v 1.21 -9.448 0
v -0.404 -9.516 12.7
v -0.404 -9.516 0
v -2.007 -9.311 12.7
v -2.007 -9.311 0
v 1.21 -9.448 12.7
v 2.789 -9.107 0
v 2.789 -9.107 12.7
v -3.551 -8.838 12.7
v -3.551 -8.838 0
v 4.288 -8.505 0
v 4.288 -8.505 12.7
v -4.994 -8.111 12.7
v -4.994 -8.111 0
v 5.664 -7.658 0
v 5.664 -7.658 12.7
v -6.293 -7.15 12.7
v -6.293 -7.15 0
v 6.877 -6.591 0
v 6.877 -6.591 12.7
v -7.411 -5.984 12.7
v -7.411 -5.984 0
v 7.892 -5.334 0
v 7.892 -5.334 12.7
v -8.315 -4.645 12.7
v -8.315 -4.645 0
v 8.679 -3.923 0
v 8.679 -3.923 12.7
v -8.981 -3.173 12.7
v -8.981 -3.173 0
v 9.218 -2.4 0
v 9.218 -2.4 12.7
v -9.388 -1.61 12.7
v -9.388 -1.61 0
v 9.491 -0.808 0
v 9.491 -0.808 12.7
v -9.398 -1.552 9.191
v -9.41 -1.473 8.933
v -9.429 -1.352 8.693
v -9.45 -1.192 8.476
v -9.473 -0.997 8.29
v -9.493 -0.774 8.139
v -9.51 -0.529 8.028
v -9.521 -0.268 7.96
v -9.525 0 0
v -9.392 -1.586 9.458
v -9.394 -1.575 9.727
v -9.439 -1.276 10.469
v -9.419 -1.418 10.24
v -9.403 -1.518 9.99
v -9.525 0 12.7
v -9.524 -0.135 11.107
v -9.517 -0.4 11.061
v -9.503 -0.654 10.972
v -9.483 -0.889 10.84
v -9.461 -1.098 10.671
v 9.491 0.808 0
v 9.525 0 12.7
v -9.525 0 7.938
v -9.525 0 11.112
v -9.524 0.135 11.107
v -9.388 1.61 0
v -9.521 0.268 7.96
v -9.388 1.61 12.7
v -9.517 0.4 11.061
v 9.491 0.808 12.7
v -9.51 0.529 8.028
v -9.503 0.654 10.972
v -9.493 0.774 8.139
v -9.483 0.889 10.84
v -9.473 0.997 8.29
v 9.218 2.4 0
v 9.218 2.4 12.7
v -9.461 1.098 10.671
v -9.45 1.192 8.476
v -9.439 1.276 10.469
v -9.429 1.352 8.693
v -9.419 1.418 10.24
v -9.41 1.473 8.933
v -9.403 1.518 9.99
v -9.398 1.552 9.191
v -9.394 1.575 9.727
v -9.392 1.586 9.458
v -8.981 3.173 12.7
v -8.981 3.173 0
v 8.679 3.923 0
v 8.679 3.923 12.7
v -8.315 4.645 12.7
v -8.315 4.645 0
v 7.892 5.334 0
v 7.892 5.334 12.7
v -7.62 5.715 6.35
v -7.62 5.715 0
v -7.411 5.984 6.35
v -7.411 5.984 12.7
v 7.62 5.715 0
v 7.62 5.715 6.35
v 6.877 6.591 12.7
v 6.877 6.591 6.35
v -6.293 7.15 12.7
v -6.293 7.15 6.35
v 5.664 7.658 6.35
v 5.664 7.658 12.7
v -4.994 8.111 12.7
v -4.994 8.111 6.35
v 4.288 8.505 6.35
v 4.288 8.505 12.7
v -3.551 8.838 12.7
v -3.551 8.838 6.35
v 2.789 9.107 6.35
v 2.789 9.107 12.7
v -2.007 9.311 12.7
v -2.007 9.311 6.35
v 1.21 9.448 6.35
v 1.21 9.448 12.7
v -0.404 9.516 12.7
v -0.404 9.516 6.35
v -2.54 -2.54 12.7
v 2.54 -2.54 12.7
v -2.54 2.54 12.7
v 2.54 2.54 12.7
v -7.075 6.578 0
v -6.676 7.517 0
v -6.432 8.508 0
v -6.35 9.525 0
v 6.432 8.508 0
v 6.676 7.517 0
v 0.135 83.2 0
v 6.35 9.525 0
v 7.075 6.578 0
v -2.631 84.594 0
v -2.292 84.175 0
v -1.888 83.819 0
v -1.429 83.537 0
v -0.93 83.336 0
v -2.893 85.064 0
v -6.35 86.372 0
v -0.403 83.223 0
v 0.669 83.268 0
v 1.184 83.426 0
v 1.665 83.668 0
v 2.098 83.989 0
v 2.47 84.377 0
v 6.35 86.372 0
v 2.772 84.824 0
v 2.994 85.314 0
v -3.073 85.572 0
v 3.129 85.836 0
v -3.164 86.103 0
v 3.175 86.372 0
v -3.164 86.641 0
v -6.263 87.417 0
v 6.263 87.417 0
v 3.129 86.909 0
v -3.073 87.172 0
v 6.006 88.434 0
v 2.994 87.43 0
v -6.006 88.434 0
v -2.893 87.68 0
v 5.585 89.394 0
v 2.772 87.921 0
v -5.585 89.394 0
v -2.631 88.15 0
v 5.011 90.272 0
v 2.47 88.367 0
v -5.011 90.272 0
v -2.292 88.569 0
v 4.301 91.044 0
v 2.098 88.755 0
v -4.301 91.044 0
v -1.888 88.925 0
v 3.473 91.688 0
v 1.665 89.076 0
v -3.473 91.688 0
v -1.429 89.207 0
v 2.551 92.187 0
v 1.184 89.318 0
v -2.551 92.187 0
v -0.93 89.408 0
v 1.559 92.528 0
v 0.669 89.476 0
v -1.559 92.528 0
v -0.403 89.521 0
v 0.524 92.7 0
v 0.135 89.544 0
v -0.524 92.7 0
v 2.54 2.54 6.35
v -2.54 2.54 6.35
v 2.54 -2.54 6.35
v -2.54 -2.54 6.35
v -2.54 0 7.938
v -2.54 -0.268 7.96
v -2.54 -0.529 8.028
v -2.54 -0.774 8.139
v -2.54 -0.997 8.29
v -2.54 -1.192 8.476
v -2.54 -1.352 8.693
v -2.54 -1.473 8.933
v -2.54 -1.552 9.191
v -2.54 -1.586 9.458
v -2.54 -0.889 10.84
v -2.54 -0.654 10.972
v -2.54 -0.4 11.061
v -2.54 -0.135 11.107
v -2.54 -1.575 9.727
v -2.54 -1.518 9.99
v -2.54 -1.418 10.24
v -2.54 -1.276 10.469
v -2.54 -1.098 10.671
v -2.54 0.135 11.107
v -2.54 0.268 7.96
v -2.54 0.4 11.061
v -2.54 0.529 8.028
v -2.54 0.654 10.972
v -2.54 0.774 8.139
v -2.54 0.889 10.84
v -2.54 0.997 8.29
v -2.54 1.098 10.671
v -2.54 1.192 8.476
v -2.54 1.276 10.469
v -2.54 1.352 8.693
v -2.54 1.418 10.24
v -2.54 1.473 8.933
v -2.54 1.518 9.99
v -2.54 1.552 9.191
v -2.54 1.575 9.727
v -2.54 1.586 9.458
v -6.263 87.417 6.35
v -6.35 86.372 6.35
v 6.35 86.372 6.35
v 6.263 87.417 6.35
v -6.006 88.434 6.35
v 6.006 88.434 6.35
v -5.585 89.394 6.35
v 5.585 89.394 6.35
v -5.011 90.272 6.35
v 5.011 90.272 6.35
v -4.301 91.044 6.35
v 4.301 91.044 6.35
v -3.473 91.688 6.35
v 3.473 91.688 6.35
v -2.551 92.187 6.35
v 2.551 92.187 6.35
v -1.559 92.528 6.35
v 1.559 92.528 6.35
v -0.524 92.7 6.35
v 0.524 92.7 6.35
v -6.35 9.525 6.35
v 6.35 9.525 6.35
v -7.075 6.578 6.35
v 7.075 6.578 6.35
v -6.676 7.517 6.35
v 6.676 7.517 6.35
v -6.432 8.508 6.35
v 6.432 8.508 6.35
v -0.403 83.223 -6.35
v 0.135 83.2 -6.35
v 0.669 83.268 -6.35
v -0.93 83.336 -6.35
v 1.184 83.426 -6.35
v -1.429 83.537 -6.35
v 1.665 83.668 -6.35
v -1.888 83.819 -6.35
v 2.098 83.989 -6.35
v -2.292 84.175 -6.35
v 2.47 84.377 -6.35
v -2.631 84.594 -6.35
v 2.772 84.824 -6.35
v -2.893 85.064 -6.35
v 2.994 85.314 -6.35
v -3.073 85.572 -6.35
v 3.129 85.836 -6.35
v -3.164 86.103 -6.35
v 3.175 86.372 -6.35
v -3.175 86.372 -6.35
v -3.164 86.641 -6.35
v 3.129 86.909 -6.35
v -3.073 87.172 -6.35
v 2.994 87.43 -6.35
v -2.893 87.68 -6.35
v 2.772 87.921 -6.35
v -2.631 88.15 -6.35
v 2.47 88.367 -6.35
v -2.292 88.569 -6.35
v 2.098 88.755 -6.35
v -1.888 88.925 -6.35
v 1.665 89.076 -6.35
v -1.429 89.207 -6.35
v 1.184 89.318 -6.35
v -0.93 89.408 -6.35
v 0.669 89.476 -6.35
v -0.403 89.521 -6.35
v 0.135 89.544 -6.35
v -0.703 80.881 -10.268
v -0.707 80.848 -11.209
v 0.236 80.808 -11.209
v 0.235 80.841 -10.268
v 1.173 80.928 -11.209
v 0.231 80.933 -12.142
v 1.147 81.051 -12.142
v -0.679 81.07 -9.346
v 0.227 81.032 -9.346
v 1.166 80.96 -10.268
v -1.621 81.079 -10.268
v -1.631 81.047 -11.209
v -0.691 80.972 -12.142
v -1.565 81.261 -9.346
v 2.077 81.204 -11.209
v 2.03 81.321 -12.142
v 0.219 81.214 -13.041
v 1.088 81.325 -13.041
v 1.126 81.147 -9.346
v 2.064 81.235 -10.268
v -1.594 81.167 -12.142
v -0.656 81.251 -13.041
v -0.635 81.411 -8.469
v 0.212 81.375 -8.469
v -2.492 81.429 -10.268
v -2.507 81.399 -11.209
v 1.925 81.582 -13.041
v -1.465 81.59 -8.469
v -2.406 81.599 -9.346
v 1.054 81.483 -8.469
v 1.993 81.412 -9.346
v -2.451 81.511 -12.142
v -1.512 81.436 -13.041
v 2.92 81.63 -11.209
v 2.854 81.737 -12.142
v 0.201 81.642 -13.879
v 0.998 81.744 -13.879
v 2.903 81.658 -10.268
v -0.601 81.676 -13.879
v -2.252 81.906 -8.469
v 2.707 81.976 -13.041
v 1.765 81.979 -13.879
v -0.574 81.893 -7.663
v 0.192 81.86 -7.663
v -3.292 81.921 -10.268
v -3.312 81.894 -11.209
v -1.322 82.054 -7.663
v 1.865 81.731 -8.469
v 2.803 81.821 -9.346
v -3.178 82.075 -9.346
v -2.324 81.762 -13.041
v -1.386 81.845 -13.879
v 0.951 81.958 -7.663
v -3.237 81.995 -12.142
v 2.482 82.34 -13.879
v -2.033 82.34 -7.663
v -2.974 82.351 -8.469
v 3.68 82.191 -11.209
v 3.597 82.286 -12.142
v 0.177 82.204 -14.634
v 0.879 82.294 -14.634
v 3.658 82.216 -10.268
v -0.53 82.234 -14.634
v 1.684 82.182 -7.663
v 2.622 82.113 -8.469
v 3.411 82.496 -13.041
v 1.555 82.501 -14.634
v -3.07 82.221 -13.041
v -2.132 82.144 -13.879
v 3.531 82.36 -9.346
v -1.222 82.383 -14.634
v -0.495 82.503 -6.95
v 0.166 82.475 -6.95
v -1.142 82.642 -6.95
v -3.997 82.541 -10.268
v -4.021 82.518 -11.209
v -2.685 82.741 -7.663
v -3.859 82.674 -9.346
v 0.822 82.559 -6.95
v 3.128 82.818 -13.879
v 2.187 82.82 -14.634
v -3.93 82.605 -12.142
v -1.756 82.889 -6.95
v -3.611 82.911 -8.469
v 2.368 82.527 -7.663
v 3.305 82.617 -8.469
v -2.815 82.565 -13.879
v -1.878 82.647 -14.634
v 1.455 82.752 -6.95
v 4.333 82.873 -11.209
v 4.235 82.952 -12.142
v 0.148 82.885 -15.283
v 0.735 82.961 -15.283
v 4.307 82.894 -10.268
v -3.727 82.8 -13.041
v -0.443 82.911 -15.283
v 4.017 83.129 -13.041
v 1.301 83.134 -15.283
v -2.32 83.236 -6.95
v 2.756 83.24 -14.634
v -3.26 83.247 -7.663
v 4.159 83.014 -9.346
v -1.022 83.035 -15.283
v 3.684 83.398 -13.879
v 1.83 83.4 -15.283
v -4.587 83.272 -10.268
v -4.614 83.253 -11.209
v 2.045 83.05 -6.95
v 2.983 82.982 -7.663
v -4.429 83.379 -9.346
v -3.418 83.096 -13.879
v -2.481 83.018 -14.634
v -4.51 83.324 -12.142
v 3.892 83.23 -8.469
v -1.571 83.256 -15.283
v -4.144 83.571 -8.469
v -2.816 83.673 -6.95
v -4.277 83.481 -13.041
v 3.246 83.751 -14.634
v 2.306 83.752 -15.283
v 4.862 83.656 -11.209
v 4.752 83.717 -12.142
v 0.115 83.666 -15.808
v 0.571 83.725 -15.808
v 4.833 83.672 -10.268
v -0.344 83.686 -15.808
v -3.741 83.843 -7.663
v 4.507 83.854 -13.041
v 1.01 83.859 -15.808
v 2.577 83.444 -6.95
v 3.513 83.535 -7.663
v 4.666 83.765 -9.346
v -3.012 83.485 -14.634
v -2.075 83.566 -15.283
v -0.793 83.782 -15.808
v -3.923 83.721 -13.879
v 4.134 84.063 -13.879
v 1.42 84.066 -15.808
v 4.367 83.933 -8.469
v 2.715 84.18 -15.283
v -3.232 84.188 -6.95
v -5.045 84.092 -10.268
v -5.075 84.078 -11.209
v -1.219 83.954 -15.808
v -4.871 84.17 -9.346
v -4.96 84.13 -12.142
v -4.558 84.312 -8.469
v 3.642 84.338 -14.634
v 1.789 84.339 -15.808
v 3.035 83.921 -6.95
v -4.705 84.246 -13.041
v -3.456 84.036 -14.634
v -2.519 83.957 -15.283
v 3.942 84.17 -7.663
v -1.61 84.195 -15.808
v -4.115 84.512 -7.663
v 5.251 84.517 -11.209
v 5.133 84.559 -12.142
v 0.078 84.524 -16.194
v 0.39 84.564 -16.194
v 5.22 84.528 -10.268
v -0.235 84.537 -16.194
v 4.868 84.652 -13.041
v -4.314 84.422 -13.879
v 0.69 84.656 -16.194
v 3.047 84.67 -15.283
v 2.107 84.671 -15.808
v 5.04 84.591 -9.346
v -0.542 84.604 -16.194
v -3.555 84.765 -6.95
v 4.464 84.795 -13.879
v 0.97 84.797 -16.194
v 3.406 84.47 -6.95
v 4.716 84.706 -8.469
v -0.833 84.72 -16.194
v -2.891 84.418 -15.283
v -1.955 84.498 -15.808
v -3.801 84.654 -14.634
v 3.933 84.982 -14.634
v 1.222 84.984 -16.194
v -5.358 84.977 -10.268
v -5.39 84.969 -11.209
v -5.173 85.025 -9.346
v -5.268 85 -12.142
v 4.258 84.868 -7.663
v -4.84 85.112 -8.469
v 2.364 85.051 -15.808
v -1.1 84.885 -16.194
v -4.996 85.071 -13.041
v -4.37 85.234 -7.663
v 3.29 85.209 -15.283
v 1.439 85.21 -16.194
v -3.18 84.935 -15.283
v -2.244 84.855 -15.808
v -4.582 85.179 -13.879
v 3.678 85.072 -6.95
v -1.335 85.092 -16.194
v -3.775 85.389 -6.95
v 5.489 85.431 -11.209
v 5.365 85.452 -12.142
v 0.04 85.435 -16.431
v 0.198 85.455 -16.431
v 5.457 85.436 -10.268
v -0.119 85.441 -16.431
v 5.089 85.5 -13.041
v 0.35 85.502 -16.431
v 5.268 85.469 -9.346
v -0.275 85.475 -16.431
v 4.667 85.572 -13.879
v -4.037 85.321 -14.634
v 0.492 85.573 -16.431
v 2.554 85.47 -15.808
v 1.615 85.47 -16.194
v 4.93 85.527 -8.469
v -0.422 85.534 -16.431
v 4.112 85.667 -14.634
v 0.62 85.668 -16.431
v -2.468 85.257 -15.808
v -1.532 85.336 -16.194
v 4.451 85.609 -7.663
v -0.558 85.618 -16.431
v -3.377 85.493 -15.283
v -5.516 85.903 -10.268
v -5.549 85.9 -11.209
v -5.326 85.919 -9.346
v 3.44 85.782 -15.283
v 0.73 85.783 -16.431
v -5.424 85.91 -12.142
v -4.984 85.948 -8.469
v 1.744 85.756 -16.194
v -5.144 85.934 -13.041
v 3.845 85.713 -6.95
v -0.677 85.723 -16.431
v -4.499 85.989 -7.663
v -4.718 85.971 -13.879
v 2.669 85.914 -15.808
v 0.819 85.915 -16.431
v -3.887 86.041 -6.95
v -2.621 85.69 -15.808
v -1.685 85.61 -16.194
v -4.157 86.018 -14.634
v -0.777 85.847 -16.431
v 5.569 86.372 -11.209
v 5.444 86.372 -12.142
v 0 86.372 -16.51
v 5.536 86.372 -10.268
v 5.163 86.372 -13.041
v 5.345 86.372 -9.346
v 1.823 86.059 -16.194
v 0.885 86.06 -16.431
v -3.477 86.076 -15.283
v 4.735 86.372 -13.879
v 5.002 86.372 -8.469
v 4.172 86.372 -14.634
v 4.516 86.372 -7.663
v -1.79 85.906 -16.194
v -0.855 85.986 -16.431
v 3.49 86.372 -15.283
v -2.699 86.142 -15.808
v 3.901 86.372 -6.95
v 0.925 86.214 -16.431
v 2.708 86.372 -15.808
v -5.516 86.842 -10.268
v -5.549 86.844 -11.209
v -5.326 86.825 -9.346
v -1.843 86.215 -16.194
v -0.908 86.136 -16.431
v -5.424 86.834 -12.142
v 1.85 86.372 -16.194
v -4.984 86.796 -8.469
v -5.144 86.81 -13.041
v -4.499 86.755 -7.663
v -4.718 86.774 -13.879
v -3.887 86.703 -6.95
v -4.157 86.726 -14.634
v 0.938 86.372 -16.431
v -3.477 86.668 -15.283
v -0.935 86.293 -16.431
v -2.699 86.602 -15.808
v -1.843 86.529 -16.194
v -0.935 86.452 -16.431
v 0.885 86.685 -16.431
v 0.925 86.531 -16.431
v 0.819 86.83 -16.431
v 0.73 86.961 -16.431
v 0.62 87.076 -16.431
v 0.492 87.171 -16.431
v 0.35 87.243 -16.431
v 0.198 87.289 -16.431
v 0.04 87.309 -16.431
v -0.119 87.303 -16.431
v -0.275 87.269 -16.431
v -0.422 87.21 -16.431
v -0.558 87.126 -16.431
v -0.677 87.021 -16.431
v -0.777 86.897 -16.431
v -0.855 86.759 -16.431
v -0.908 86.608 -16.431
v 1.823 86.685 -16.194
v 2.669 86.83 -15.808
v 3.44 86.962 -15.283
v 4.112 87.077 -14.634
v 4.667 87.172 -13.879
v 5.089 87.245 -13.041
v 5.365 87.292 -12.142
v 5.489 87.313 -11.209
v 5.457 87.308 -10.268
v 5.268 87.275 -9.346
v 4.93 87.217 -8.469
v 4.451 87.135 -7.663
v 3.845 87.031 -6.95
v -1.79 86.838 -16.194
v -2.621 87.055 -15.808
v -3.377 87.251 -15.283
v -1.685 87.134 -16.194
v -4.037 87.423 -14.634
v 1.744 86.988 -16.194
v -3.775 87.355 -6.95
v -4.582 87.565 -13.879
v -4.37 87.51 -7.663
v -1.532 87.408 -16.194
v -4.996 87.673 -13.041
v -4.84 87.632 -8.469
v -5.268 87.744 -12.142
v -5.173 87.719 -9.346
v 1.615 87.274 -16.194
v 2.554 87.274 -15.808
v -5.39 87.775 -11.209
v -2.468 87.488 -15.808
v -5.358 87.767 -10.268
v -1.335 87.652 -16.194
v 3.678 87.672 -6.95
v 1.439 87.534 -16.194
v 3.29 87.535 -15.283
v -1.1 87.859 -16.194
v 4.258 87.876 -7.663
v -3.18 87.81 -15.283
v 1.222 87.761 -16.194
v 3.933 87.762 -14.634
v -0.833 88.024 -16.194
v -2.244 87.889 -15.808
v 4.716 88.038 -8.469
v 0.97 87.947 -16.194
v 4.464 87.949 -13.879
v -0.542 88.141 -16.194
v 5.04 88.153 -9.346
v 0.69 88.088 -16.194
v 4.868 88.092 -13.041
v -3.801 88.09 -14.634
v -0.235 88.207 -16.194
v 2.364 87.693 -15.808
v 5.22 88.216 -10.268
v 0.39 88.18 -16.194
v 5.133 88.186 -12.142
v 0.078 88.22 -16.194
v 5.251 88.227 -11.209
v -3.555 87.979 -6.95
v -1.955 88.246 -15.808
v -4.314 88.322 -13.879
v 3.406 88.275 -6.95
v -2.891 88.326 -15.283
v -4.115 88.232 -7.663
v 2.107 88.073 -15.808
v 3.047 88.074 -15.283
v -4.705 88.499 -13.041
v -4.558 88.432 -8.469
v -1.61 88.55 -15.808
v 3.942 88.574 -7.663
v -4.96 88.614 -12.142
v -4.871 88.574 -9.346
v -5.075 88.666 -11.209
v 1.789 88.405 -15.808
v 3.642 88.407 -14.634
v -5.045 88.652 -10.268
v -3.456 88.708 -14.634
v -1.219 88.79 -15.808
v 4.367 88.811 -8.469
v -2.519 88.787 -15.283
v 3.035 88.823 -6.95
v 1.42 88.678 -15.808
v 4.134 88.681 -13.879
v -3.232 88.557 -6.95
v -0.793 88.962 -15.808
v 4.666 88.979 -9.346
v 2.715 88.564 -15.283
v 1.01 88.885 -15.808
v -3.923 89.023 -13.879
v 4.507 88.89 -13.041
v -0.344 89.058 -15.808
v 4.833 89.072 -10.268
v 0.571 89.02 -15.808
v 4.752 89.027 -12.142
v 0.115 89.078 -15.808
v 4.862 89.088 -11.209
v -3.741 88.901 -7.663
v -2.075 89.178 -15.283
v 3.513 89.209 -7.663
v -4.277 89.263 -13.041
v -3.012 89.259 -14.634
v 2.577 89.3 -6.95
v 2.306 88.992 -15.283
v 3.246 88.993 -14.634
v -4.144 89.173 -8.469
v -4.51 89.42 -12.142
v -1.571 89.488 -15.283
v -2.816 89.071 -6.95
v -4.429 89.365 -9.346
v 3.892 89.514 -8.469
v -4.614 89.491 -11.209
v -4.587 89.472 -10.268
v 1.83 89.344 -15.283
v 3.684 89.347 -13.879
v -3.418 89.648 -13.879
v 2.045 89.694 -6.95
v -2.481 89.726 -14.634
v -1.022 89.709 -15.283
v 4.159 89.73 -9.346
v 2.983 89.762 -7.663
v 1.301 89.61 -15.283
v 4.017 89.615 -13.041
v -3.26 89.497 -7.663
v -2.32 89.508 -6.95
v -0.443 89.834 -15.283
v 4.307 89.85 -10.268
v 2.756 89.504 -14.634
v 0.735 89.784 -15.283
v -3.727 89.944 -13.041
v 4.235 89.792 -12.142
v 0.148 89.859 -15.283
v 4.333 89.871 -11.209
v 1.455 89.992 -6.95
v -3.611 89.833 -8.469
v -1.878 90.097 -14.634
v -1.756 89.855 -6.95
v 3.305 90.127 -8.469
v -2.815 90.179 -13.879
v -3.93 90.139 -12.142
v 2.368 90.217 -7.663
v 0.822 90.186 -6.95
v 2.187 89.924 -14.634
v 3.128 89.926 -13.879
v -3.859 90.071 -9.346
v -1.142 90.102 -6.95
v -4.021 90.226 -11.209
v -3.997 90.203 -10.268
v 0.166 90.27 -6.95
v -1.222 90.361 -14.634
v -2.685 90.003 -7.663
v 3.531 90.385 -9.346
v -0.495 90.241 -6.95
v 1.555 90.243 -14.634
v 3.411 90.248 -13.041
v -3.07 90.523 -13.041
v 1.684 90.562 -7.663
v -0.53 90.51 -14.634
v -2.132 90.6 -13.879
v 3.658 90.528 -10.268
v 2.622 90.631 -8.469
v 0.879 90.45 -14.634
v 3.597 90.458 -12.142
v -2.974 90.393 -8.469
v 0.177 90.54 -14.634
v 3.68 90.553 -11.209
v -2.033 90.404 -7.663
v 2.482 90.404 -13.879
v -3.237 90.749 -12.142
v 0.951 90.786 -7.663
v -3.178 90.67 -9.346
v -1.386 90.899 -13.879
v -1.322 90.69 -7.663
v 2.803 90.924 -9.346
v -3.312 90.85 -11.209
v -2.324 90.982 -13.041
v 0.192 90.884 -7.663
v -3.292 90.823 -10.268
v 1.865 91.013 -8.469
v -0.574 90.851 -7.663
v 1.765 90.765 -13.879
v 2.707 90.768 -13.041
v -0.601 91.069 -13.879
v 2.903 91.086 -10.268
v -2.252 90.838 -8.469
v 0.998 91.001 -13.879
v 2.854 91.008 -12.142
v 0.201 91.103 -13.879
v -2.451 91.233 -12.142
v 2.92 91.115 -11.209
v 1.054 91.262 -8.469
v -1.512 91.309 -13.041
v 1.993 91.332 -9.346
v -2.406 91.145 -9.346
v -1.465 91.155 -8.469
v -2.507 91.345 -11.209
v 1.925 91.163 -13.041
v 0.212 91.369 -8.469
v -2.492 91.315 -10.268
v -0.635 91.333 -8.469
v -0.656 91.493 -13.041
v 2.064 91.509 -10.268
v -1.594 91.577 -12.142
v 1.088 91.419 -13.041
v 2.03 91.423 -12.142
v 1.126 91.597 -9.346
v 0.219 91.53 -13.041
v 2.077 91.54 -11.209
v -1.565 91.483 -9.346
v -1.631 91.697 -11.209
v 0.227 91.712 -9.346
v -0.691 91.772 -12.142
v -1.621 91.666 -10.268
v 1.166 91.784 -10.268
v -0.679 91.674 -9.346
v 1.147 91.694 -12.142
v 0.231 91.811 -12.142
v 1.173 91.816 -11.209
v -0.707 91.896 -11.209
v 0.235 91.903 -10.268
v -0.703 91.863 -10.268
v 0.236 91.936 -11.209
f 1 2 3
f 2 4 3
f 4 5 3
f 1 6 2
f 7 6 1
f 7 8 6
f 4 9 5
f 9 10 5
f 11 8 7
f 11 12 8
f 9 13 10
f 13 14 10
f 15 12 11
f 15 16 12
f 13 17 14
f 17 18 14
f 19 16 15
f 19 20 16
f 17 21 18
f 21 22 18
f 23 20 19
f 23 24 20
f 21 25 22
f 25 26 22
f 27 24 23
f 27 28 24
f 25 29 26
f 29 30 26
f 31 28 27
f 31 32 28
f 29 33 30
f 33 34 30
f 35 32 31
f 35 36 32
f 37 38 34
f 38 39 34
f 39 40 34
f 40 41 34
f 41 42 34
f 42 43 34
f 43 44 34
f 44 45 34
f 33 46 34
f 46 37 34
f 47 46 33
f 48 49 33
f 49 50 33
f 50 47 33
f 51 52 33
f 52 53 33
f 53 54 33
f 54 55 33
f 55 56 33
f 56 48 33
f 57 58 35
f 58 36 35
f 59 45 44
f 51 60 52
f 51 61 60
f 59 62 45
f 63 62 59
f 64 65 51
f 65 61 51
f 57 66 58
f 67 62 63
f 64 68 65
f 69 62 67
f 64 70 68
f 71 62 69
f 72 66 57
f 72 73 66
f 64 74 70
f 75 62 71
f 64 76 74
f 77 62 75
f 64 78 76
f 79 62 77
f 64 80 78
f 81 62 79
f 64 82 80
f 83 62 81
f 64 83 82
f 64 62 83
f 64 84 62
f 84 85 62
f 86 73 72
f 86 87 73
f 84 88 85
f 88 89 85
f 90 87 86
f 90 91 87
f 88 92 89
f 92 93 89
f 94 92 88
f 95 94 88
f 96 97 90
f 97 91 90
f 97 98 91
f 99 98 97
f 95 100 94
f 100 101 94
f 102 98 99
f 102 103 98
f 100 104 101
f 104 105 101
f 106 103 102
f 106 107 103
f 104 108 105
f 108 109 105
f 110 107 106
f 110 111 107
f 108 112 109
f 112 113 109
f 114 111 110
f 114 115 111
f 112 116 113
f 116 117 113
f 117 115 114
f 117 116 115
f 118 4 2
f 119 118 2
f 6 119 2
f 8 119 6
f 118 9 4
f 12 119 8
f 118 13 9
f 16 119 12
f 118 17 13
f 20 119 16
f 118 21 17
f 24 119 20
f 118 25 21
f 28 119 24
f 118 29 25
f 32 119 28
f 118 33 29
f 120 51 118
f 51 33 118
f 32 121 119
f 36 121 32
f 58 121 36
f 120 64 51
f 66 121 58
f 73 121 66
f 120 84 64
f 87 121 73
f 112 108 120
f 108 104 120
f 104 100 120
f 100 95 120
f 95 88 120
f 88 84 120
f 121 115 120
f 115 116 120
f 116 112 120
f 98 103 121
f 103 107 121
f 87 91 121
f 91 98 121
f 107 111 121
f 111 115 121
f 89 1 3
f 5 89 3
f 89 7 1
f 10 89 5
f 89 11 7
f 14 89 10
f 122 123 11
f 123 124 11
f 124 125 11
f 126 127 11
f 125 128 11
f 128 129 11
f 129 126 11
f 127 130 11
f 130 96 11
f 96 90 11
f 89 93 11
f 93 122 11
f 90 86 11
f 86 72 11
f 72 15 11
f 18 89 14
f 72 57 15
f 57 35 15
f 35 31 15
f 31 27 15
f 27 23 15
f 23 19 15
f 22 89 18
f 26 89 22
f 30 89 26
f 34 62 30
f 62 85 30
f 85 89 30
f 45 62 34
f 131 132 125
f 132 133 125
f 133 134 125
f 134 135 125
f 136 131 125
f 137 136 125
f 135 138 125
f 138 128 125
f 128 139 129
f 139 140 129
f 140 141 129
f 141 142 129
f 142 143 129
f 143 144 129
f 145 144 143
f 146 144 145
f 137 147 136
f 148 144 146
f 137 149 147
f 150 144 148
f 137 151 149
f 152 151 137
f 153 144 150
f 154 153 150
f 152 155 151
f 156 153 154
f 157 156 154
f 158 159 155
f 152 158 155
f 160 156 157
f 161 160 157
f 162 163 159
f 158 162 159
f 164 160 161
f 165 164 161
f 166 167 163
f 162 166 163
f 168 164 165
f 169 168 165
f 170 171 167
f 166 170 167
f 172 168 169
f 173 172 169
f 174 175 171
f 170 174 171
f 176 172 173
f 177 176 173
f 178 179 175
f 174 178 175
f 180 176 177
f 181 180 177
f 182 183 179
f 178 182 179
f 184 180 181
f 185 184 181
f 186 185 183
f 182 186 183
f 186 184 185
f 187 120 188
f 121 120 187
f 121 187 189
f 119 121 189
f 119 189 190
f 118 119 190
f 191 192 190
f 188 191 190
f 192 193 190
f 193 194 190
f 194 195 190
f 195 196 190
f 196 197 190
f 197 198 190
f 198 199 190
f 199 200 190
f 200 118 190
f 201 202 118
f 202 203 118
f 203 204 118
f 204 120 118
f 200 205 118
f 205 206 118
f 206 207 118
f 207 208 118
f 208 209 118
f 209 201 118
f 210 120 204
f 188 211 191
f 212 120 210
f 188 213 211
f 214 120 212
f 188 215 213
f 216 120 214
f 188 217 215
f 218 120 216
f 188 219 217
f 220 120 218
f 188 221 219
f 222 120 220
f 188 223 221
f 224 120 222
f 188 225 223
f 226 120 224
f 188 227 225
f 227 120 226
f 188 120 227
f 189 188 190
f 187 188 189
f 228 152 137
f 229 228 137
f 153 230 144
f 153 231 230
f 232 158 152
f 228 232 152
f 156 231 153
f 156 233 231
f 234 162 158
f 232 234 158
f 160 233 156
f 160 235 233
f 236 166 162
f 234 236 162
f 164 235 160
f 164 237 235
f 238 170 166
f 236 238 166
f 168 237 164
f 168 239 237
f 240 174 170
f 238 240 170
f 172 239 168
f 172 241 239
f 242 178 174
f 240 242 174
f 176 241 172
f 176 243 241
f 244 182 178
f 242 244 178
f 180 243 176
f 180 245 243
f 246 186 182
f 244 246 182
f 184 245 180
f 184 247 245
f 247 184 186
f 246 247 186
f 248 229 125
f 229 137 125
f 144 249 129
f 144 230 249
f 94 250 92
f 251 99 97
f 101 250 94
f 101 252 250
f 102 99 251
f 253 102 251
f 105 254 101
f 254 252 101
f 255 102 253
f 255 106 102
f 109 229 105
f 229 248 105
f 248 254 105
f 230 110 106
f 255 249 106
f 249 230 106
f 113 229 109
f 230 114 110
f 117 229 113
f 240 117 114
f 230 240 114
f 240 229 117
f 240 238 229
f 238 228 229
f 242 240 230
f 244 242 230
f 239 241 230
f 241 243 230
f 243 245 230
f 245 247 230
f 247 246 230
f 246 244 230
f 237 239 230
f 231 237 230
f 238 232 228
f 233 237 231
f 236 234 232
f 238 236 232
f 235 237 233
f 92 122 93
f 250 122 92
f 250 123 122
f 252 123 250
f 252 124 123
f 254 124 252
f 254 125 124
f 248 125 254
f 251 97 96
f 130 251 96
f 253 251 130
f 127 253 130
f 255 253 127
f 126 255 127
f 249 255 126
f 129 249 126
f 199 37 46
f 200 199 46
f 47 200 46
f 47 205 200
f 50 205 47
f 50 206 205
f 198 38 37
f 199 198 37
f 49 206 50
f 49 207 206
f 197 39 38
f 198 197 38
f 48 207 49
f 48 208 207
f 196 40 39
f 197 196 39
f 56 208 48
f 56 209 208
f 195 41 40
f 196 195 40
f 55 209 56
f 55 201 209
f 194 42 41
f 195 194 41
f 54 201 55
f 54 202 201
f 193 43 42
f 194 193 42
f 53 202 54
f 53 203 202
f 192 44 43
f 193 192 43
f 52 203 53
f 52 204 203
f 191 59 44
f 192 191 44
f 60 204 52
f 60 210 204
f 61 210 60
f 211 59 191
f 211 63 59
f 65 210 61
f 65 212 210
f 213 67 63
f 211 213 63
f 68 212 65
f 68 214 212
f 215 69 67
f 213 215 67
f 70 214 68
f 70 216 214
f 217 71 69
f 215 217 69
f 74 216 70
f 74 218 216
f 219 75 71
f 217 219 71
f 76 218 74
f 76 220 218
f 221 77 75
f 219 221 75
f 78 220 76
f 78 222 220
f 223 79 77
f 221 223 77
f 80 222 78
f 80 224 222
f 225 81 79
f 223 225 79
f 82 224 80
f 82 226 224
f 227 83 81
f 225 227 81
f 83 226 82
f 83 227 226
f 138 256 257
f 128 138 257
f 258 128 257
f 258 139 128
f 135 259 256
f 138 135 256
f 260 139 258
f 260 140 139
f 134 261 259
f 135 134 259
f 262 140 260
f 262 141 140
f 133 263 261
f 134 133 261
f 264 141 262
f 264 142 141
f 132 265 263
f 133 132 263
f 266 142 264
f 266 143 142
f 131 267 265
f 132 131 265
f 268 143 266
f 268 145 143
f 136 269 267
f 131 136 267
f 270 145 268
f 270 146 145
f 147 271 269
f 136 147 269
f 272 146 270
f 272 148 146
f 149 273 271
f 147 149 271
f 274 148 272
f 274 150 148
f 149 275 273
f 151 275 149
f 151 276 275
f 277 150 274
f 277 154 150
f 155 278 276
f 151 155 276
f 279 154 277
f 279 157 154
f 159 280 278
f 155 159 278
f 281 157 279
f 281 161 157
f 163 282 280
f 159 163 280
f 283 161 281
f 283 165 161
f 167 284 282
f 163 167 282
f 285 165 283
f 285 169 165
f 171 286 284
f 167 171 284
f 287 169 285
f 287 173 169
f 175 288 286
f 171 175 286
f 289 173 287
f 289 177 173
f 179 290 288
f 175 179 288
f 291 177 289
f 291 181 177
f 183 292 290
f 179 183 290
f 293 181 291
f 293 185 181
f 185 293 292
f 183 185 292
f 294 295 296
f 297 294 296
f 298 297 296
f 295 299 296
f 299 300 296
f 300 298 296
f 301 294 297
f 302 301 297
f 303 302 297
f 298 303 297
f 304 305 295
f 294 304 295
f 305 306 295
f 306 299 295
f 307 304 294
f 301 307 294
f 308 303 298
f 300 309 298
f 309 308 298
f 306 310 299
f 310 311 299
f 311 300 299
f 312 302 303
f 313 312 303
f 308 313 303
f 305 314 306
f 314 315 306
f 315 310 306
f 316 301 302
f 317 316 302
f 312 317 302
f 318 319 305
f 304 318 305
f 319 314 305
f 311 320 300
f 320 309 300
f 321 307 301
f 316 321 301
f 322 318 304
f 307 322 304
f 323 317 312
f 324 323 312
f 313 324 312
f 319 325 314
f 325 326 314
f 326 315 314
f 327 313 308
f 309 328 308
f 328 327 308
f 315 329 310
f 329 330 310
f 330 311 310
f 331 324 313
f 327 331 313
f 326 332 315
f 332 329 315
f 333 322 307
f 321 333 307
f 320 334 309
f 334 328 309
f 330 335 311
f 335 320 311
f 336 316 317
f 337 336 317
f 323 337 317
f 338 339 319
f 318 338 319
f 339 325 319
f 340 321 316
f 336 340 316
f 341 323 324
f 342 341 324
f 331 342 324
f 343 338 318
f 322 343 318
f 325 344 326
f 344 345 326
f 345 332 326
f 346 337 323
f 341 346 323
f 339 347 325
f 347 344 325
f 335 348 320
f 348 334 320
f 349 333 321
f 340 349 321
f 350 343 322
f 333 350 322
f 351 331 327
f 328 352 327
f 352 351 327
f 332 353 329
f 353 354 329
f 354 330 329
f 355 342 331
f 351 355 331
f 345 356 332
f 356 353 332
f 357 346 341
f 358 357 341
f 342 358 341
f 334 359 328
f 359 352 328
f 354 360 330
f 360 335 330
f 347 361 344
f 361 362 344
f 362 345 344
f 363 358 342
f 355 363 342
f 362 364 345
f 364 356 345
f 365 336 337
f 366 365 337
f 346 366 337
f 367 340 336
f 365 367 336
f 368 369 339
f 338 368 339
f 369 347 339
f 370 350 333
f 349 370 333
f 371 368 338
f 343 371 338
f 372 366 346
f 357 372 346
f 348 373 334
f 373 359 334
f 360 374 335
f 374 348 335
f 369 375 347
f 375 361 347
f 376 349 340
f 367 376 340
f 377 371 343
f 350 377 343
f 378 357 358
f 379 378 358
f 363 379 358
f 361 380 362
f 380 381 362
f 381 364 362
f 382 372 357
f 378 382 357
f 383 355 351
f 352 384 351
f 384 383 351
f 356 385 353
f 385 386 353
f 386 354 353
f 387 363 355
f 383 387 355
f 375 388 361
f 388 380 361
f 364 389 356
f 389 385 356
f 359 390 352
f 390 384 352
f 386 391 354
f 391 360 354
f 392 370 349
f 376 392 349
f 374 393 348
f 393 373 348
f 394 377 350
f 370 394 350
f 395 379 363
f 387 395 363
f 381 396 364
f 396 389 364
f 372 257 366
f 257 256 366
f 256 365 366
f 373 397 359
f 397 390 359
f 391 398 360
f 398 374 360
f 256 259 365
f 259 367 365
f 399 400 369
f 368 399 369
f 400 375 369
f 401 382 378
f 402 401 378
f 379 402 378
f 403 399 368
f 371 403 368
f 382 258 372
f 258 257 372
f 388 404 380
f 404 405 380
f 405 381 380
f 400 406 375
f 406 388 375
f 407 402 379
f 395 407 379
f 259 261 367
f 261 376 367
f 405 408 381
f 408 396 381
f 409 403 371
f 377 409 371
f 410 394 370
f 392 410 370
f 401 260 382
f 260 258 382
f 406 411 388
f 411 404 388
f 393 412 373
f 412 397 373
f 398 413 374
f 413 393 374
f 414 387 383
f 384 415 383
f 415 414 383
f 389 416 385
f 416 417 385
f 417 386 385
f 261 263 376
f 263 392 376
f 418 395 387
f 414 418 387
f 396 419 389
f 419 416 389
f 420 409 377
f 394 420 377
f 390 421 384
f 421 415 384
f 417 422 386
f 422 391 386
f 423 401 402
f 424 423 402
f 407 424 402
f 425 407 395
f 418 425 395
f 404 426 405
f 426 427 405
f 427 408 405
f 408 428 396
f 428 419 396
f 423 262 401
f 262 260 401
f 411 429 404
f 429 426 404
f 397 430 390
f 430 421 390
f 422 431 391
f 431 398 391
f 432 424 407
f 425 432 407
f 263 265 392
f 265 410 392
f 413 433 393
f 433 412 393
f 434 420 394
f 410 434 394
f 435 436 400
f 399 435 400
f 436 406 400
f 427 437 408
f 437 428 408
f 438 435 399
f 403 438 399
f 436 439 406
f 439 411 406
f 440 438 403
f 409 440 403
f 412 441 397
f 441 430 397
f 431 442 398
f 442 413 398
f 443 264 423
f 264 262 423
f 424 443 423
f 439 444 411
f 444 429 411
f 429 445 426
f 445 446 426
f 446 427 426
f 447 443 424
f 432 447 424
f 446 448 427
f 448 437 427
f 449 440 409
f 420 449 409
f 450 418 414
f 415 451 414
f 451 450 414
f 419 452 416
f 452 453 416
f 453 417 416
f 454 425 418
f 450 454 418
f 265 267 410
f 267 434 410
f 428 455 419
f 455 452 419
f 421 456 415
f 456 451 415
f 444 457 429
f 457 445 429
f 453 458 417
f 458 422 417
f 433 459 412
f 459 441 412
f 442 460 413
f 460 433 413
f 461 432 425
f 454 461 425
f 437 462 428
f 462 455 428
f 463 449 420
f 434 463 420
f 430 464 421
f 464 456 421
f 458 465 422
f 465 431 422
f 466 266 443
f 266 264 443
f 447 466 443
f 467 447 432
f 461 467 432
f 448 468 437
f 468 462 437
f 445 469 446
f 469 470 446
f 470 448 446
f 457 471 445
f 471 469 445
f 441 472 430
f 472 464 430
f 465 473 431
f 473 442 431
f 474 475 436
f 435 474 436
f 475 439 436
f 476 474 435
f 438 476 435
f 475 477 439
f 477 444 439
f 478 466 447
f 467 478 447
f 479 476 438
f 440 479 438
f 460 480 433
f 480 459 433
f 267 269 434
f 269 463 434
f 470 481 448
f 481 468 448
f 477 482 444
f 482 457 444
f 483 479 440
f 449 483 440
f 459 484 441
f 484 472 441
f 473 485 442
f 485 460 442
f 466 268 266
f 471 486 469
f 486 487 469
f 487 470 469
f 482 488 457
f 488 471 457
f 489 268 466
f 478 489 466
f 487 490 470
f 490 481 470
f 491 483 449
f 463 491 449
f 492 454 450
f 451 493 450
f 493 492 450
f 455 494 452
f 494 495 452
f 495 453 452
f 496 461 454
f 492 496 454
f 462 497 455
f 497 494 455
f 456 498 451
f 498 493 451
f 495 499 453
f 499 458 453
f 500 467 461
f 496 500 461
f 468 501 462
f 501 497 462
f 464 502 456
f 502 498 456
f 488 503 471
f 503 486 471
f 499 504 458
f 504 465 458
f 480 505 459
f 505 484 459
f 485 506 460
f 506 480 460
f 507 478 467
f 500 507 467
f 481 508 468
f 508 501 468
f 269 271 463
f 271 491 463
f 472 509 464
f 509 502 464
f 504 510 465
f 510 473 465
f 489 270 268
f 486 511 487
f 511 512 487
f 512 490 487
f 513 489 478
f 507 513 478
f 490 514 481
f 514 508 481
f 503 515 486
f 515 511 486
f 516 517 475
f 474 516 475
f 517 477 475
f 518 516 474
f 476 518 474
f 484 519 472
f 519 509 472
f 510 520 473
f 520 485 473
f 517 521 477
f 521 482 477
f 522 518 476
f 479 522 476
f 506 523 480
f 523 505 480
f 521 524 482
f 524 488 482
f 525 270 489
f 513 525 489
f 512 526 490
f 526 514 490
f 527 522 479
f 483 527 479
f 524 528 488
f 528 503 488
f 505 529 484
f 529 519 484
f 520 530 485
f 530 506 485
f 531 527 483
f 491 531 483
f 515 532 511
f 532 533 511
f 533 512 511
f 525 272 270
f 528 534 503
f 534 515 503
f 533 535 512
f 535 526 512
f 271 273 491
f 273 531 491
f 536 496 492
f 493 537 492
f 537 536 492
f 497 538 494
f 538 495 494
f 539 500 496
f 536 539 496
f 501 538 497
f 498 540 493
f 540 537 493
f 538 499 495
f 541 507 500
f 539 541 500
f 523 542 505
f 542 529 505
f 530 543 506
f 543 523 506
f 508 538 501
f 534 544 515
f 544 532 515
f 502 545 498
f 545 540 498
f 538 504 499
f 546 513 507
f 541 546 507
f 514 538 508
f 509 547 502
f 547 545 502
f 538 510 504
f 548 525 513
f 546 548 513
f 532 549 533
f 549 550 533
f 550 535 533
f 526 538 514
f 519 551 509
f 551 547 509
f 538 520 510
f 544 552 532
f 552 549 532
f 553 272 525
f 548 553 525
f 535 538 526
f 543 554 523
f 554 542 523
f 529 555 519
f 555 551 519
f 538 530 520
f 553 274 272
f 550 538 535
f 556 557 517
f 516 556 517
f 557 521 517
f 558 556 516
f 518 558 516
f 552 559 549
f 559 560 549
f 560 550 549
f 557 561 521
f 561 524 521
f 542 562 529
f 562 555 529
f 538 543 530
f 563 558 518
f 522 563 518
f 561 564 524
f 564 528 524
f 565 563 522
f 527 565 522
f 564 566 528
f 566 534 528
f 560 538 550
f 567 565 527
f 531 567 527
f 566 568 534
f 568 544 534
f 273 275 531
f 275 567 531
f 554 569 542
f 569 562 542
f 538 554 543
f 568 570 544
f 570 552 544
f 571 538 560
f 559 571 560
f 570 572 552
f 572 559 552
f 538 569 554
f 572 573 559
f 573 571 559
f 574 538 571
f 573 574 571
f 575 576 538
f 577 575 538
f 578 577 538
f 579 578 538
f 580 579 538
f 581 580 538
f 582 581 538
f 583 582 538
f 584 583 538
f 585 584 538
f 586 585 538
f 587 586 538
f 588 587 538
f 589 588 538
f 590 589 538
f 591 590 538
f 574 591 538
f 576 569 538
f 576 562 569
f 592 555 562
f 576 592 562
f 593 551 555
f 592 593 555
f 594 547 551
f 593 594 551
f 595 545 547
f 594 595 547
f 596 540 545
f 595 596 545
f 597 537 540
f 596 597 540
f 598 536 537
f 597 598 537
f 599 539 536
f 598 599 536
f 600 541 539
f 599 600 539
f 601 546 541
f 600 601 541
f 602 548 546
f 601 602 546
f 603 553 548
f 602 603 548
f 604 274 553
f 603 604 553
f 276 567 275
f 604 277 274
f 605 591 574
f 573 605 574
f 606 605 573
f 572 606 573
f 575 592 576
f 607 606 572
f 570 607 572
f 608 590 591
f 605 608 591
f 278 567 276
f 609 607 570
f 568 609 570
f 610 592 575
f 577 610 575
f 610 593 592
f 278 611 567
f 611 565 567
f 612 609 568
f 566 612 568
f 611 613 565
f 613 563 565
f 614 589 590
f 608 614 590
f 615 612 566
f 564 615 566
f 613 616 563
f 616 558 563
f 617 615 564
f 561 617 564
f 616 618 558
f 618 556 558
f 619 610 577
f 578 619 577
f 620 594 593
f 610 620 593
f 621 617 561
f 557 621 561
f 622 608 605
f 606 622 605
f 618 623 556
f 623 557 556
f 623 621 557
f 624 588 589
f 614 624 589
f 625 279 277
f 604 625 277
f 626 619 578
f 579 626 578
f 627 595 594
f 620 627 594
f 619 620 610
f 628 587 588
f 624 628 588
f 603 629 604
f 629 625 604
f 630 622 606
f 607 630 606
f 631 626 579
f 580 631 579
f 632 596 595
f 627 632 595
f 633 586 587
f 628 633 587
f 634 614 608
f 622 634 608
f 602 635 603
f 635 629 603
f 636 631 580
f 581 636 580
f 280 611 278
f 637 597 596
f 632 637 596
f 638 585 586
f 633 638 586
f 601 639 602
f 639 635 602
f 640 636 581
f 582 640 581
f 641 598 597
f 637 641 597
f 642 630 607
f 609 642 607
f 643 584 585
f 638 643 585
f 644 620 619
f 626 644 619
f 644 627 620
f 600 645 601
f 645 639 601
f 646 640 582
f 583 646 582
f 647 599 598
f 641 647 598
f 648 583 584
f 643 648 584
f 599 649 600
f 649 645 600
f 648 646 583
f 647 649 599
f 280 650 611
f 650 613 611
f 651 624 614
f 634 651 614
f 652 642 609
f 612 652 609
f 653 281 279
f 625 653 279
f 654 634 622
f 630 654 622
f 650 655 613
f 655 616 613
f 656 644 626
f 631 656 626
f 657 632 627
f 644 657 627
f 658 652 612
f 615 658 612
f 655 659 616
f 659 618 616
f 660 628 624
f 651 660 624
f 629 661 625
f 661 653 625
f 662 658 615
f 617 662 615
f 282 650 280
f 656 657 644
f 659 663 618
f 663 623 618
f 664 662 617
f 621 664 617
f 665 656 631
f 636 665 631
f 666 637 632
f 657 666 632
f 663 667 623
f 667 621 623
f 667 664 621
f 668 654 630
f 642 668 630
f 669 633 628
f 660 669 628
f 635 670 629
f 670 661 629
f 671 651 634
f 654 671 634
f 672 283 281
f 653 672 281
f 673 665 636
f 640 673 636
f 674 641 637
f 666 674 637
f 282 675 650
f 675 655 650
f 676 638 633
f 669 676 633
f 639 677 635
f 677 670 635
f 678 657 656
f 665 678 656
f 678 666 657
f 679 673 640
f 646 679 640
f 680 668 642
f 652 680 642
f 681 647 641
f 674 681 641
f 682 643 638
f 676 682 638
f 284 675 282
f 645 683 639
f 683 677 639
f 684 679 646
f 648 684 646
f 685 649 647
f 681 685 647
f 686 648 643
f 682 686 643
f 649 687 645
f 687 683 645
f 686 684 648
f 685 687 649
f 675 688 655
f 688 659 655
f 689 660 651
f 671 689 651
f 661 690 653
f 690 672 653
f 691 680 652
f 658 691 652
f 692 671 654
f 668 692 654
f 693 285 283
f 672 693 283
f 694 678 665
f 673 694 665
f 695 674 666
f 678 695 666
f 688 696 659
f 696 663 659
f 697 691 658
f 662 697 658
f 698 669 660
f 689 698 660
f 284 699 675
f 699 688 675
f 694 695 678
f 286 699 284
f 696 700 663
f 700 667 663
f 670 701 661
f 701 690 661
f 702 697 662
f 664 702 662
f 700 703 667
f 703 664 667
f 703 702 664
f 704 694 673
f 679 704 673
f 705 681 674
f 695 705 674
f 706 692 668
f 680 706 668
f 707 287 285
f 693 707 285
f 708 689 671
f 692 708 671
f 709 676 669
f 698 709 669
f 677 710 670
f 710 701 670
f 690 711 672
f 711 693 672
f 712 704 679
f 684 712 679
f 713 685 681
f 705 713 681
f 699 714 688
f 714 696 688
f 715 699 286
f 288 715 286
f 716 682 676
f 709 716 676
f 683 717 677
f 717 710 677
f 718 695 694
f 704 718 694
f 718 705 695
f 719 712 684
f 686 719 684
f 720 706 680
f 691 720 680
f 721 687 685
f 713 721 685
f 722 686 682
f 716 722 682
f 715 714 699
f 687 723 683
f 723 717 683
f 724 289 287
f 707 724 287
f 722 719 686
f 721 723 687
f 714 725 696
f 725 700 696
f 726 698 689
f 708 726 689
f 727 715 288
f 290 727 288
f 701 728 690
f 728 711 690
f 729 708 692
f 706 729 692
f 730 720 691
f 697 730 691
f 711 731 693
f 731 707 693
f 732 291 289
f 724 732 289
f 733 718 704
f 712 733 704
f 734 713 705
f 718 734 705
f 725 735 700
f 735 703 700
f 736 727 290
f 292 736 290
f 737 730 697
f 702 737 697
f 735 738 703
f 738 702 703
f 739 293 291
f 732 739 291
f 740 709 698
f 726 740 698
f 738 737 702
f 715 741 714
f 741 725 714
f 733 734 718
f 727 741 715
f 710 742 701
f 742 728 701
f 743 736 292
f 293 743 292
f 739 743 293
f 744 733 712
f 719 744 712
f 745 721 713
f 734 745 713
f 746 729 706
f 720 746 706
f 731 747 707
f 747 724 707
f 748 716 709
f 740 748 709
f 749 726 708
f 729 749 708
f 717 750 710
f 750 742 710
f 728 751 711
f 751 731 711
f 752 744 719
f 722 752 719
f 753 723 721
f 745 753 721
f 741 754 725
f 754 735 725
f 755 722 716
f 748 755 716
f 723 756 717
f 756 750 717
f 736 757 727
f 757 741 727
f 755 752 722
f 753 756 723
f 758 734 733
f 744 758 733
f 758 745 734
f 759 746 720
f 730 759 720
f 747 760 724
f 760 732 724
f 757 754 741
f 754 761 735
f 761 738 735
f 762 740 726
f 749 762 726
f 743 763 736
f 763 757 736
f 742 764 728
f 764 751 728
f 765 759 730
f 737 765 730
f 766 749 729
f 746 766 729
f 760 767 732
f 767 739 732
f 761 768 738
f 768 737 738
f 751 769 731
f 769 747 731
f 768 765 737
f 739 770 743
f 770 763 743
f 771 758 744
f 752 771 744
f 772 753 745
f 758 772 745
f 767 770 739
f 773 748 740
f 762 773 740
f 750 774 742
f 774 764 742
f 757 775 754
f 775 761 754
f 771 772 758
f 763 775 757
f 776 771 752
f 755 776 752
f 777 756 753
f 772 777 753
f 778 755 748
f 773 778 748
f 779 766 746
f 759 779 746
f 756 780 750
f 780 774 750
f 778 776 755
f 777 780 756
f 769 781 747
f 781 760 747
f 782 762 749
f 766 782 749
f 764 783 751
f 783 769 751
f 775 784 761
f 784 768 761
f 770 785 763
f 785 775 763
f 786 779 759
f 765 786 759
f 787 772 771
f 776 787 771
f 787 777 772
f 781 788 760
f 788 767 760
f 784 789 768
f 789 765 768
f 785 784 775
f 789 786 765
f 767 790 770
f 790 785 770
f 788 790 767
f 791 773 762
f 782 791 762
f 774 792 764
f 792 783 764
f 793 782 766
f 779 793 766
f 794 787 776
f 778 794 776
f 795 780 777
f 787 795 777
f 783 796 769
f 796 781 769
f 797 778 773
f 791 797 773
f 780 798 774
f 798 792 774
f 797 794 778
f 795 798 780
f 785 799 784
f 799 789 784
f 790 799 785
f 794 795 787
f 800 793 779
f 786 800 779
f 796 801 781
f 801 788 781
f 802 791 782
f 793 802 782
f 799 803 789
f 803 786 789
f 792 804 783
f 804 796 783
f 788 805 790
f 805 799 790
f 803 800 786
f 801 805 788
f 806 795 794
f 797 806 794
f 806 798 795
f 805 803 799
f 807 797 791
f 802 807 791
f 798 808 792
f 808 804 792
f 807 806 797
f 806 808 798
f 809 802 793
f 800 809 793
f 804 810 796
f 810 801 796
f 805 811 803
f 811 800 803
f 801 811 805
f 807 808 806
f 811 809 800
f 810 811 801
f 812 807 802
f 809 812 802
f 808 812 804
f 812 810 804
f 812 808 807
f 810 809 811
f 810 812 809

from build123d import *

# Parameters (mm, degrees)
SKETCH1_R           = 9.525
BOSS_EXTRUDE1_DEPTH = 12.7
SKETCH2_W           = 5.08
SKETCH2_H           = 5.08
CUT_EXTRUDE2_DEPTH  = 6.35
BOSS_EXTRUDE2_DEPTH = 6.35
FILLET2_R           = 6.35
CUT_EXTRUDE3_REACH  = 14.065
SKETCH5_R           = 1.5875
SKETCH4_R           = 3.175
BOSS_EXTRUDE3_DEPTH = 6.35
DOME1_FACE_RADIUS   = 3.175
DOME1_HEIGHT        = 10.16


with BuildPart() as part:
    # Sketch1 → Boss-Extrude1 (new body)
    with BuildSketch(Plane.XY):
        Circle(SKETCH1_R)
    extrude(amount=BOSS_EXTRUDE1_DEPTH)

    # Sketch2 → Cut-Extrude2 (cut)
    with BuildSketch(Plane.XY.offset(12.7)):
        Rectangle(SKETCH2_W, SKETCH2_H)
    extrude(amount=-CUT_EXTRUDE2_DEPTH, mode=Mode.SUBTRACT)

    # Sketch3 → Boss-Extrude2 (add)
    with BuildSketch(Plane(origin=(0, 0, 0), x_dir=(-1, 0, 0), z_dir=(0, 0, -1))):
        with BuildLine():
            Line((-6.35, 10.172076103), (-6.35, 7.099515829))
            Line((-6.35, 7.099515829), (6.35, 7.099515829))
            Line((6.35, 7.099515829), (6.35, 10.172076103))
            Line((6.35, 10.172076103), (6.35, 86.372076103))
            ThreePointArc((6.35, 86.372076103), (0, 92.722076103), (-6.35, 86.372076103))
            Line((-6.35, 86.372076103), (-6.35, 10.172076103))
        make_face()
    extrude(amount=-BOSS_EXTRUDE2_DEPTH)

    # Fillet2
    fillet2_edges = [part.edges().sort_by_distance(p)[0] for p in [
        (-6.35, 7.099515829, 3.175),
        (6.35, 7.099515829, 3.175),
    ]]
    fillet(fillet2_edges, radius=FILLET2_R)

    # Sketch5 → Cut-Extrude3 (cut, up to next)
    with BuildSketch(Plane.ZY.offset(-2.54), mode=Mode.PRIVATE) as cut_extrude3_sk1:
        with Locations((9.525, 0)):
            Circle(SKETCH5_R)
    cut_extrude3_tool1 = extrude(cut_extrude3_sk1.sketch, amount=CUT_EXTRUDE3_REACH, mode=Mode.PRIVATE) & part.part
    add(cut_extrude3_tool1.solids().sort_by_distance((2.54, 0, 9.525))[0], mode=Mode.SUBTRACT)

    # Sketch4 → Boss-Extrude3 (add)
    with BuildSketch(Plane(origin=(0, 0, 0), x_dir=(-1, 0, 0), z_dir=(0, 0, -1))):
        with Locations((0, 86.372076103)):
            Circle(SKETCH4_R)
    extrude(amount=BOSS_EXTRUDE3_DEPTH)

    # Dome1: a dome of height H over a round flat face of radius A is a cap of a sphere of radius (A * A + H * H) / (2 * H)
    dome1_r = (DOME1_FACE_RADIUS * DOME1_FACE_RADIUS + DOME1_HEIGHT * DOME1_HEIGHT) / (2 * DOME1_HEIGHT)
    dome1_base = Plane((0, 86.372076103, -6.35), z_dir=(0, 0, -1))
    with Locations(dome1_base.offset(DOME1_HEIGHT - dome1_r)):
        dome1_ball = Sphere(dome1_r, mode=Mode.PRIVATE)
    add(split(dome1_ball, bisect_by=dome1_base, keep=Keep.TOP, mode=Mode.PRIVATE))


solid = part.part
